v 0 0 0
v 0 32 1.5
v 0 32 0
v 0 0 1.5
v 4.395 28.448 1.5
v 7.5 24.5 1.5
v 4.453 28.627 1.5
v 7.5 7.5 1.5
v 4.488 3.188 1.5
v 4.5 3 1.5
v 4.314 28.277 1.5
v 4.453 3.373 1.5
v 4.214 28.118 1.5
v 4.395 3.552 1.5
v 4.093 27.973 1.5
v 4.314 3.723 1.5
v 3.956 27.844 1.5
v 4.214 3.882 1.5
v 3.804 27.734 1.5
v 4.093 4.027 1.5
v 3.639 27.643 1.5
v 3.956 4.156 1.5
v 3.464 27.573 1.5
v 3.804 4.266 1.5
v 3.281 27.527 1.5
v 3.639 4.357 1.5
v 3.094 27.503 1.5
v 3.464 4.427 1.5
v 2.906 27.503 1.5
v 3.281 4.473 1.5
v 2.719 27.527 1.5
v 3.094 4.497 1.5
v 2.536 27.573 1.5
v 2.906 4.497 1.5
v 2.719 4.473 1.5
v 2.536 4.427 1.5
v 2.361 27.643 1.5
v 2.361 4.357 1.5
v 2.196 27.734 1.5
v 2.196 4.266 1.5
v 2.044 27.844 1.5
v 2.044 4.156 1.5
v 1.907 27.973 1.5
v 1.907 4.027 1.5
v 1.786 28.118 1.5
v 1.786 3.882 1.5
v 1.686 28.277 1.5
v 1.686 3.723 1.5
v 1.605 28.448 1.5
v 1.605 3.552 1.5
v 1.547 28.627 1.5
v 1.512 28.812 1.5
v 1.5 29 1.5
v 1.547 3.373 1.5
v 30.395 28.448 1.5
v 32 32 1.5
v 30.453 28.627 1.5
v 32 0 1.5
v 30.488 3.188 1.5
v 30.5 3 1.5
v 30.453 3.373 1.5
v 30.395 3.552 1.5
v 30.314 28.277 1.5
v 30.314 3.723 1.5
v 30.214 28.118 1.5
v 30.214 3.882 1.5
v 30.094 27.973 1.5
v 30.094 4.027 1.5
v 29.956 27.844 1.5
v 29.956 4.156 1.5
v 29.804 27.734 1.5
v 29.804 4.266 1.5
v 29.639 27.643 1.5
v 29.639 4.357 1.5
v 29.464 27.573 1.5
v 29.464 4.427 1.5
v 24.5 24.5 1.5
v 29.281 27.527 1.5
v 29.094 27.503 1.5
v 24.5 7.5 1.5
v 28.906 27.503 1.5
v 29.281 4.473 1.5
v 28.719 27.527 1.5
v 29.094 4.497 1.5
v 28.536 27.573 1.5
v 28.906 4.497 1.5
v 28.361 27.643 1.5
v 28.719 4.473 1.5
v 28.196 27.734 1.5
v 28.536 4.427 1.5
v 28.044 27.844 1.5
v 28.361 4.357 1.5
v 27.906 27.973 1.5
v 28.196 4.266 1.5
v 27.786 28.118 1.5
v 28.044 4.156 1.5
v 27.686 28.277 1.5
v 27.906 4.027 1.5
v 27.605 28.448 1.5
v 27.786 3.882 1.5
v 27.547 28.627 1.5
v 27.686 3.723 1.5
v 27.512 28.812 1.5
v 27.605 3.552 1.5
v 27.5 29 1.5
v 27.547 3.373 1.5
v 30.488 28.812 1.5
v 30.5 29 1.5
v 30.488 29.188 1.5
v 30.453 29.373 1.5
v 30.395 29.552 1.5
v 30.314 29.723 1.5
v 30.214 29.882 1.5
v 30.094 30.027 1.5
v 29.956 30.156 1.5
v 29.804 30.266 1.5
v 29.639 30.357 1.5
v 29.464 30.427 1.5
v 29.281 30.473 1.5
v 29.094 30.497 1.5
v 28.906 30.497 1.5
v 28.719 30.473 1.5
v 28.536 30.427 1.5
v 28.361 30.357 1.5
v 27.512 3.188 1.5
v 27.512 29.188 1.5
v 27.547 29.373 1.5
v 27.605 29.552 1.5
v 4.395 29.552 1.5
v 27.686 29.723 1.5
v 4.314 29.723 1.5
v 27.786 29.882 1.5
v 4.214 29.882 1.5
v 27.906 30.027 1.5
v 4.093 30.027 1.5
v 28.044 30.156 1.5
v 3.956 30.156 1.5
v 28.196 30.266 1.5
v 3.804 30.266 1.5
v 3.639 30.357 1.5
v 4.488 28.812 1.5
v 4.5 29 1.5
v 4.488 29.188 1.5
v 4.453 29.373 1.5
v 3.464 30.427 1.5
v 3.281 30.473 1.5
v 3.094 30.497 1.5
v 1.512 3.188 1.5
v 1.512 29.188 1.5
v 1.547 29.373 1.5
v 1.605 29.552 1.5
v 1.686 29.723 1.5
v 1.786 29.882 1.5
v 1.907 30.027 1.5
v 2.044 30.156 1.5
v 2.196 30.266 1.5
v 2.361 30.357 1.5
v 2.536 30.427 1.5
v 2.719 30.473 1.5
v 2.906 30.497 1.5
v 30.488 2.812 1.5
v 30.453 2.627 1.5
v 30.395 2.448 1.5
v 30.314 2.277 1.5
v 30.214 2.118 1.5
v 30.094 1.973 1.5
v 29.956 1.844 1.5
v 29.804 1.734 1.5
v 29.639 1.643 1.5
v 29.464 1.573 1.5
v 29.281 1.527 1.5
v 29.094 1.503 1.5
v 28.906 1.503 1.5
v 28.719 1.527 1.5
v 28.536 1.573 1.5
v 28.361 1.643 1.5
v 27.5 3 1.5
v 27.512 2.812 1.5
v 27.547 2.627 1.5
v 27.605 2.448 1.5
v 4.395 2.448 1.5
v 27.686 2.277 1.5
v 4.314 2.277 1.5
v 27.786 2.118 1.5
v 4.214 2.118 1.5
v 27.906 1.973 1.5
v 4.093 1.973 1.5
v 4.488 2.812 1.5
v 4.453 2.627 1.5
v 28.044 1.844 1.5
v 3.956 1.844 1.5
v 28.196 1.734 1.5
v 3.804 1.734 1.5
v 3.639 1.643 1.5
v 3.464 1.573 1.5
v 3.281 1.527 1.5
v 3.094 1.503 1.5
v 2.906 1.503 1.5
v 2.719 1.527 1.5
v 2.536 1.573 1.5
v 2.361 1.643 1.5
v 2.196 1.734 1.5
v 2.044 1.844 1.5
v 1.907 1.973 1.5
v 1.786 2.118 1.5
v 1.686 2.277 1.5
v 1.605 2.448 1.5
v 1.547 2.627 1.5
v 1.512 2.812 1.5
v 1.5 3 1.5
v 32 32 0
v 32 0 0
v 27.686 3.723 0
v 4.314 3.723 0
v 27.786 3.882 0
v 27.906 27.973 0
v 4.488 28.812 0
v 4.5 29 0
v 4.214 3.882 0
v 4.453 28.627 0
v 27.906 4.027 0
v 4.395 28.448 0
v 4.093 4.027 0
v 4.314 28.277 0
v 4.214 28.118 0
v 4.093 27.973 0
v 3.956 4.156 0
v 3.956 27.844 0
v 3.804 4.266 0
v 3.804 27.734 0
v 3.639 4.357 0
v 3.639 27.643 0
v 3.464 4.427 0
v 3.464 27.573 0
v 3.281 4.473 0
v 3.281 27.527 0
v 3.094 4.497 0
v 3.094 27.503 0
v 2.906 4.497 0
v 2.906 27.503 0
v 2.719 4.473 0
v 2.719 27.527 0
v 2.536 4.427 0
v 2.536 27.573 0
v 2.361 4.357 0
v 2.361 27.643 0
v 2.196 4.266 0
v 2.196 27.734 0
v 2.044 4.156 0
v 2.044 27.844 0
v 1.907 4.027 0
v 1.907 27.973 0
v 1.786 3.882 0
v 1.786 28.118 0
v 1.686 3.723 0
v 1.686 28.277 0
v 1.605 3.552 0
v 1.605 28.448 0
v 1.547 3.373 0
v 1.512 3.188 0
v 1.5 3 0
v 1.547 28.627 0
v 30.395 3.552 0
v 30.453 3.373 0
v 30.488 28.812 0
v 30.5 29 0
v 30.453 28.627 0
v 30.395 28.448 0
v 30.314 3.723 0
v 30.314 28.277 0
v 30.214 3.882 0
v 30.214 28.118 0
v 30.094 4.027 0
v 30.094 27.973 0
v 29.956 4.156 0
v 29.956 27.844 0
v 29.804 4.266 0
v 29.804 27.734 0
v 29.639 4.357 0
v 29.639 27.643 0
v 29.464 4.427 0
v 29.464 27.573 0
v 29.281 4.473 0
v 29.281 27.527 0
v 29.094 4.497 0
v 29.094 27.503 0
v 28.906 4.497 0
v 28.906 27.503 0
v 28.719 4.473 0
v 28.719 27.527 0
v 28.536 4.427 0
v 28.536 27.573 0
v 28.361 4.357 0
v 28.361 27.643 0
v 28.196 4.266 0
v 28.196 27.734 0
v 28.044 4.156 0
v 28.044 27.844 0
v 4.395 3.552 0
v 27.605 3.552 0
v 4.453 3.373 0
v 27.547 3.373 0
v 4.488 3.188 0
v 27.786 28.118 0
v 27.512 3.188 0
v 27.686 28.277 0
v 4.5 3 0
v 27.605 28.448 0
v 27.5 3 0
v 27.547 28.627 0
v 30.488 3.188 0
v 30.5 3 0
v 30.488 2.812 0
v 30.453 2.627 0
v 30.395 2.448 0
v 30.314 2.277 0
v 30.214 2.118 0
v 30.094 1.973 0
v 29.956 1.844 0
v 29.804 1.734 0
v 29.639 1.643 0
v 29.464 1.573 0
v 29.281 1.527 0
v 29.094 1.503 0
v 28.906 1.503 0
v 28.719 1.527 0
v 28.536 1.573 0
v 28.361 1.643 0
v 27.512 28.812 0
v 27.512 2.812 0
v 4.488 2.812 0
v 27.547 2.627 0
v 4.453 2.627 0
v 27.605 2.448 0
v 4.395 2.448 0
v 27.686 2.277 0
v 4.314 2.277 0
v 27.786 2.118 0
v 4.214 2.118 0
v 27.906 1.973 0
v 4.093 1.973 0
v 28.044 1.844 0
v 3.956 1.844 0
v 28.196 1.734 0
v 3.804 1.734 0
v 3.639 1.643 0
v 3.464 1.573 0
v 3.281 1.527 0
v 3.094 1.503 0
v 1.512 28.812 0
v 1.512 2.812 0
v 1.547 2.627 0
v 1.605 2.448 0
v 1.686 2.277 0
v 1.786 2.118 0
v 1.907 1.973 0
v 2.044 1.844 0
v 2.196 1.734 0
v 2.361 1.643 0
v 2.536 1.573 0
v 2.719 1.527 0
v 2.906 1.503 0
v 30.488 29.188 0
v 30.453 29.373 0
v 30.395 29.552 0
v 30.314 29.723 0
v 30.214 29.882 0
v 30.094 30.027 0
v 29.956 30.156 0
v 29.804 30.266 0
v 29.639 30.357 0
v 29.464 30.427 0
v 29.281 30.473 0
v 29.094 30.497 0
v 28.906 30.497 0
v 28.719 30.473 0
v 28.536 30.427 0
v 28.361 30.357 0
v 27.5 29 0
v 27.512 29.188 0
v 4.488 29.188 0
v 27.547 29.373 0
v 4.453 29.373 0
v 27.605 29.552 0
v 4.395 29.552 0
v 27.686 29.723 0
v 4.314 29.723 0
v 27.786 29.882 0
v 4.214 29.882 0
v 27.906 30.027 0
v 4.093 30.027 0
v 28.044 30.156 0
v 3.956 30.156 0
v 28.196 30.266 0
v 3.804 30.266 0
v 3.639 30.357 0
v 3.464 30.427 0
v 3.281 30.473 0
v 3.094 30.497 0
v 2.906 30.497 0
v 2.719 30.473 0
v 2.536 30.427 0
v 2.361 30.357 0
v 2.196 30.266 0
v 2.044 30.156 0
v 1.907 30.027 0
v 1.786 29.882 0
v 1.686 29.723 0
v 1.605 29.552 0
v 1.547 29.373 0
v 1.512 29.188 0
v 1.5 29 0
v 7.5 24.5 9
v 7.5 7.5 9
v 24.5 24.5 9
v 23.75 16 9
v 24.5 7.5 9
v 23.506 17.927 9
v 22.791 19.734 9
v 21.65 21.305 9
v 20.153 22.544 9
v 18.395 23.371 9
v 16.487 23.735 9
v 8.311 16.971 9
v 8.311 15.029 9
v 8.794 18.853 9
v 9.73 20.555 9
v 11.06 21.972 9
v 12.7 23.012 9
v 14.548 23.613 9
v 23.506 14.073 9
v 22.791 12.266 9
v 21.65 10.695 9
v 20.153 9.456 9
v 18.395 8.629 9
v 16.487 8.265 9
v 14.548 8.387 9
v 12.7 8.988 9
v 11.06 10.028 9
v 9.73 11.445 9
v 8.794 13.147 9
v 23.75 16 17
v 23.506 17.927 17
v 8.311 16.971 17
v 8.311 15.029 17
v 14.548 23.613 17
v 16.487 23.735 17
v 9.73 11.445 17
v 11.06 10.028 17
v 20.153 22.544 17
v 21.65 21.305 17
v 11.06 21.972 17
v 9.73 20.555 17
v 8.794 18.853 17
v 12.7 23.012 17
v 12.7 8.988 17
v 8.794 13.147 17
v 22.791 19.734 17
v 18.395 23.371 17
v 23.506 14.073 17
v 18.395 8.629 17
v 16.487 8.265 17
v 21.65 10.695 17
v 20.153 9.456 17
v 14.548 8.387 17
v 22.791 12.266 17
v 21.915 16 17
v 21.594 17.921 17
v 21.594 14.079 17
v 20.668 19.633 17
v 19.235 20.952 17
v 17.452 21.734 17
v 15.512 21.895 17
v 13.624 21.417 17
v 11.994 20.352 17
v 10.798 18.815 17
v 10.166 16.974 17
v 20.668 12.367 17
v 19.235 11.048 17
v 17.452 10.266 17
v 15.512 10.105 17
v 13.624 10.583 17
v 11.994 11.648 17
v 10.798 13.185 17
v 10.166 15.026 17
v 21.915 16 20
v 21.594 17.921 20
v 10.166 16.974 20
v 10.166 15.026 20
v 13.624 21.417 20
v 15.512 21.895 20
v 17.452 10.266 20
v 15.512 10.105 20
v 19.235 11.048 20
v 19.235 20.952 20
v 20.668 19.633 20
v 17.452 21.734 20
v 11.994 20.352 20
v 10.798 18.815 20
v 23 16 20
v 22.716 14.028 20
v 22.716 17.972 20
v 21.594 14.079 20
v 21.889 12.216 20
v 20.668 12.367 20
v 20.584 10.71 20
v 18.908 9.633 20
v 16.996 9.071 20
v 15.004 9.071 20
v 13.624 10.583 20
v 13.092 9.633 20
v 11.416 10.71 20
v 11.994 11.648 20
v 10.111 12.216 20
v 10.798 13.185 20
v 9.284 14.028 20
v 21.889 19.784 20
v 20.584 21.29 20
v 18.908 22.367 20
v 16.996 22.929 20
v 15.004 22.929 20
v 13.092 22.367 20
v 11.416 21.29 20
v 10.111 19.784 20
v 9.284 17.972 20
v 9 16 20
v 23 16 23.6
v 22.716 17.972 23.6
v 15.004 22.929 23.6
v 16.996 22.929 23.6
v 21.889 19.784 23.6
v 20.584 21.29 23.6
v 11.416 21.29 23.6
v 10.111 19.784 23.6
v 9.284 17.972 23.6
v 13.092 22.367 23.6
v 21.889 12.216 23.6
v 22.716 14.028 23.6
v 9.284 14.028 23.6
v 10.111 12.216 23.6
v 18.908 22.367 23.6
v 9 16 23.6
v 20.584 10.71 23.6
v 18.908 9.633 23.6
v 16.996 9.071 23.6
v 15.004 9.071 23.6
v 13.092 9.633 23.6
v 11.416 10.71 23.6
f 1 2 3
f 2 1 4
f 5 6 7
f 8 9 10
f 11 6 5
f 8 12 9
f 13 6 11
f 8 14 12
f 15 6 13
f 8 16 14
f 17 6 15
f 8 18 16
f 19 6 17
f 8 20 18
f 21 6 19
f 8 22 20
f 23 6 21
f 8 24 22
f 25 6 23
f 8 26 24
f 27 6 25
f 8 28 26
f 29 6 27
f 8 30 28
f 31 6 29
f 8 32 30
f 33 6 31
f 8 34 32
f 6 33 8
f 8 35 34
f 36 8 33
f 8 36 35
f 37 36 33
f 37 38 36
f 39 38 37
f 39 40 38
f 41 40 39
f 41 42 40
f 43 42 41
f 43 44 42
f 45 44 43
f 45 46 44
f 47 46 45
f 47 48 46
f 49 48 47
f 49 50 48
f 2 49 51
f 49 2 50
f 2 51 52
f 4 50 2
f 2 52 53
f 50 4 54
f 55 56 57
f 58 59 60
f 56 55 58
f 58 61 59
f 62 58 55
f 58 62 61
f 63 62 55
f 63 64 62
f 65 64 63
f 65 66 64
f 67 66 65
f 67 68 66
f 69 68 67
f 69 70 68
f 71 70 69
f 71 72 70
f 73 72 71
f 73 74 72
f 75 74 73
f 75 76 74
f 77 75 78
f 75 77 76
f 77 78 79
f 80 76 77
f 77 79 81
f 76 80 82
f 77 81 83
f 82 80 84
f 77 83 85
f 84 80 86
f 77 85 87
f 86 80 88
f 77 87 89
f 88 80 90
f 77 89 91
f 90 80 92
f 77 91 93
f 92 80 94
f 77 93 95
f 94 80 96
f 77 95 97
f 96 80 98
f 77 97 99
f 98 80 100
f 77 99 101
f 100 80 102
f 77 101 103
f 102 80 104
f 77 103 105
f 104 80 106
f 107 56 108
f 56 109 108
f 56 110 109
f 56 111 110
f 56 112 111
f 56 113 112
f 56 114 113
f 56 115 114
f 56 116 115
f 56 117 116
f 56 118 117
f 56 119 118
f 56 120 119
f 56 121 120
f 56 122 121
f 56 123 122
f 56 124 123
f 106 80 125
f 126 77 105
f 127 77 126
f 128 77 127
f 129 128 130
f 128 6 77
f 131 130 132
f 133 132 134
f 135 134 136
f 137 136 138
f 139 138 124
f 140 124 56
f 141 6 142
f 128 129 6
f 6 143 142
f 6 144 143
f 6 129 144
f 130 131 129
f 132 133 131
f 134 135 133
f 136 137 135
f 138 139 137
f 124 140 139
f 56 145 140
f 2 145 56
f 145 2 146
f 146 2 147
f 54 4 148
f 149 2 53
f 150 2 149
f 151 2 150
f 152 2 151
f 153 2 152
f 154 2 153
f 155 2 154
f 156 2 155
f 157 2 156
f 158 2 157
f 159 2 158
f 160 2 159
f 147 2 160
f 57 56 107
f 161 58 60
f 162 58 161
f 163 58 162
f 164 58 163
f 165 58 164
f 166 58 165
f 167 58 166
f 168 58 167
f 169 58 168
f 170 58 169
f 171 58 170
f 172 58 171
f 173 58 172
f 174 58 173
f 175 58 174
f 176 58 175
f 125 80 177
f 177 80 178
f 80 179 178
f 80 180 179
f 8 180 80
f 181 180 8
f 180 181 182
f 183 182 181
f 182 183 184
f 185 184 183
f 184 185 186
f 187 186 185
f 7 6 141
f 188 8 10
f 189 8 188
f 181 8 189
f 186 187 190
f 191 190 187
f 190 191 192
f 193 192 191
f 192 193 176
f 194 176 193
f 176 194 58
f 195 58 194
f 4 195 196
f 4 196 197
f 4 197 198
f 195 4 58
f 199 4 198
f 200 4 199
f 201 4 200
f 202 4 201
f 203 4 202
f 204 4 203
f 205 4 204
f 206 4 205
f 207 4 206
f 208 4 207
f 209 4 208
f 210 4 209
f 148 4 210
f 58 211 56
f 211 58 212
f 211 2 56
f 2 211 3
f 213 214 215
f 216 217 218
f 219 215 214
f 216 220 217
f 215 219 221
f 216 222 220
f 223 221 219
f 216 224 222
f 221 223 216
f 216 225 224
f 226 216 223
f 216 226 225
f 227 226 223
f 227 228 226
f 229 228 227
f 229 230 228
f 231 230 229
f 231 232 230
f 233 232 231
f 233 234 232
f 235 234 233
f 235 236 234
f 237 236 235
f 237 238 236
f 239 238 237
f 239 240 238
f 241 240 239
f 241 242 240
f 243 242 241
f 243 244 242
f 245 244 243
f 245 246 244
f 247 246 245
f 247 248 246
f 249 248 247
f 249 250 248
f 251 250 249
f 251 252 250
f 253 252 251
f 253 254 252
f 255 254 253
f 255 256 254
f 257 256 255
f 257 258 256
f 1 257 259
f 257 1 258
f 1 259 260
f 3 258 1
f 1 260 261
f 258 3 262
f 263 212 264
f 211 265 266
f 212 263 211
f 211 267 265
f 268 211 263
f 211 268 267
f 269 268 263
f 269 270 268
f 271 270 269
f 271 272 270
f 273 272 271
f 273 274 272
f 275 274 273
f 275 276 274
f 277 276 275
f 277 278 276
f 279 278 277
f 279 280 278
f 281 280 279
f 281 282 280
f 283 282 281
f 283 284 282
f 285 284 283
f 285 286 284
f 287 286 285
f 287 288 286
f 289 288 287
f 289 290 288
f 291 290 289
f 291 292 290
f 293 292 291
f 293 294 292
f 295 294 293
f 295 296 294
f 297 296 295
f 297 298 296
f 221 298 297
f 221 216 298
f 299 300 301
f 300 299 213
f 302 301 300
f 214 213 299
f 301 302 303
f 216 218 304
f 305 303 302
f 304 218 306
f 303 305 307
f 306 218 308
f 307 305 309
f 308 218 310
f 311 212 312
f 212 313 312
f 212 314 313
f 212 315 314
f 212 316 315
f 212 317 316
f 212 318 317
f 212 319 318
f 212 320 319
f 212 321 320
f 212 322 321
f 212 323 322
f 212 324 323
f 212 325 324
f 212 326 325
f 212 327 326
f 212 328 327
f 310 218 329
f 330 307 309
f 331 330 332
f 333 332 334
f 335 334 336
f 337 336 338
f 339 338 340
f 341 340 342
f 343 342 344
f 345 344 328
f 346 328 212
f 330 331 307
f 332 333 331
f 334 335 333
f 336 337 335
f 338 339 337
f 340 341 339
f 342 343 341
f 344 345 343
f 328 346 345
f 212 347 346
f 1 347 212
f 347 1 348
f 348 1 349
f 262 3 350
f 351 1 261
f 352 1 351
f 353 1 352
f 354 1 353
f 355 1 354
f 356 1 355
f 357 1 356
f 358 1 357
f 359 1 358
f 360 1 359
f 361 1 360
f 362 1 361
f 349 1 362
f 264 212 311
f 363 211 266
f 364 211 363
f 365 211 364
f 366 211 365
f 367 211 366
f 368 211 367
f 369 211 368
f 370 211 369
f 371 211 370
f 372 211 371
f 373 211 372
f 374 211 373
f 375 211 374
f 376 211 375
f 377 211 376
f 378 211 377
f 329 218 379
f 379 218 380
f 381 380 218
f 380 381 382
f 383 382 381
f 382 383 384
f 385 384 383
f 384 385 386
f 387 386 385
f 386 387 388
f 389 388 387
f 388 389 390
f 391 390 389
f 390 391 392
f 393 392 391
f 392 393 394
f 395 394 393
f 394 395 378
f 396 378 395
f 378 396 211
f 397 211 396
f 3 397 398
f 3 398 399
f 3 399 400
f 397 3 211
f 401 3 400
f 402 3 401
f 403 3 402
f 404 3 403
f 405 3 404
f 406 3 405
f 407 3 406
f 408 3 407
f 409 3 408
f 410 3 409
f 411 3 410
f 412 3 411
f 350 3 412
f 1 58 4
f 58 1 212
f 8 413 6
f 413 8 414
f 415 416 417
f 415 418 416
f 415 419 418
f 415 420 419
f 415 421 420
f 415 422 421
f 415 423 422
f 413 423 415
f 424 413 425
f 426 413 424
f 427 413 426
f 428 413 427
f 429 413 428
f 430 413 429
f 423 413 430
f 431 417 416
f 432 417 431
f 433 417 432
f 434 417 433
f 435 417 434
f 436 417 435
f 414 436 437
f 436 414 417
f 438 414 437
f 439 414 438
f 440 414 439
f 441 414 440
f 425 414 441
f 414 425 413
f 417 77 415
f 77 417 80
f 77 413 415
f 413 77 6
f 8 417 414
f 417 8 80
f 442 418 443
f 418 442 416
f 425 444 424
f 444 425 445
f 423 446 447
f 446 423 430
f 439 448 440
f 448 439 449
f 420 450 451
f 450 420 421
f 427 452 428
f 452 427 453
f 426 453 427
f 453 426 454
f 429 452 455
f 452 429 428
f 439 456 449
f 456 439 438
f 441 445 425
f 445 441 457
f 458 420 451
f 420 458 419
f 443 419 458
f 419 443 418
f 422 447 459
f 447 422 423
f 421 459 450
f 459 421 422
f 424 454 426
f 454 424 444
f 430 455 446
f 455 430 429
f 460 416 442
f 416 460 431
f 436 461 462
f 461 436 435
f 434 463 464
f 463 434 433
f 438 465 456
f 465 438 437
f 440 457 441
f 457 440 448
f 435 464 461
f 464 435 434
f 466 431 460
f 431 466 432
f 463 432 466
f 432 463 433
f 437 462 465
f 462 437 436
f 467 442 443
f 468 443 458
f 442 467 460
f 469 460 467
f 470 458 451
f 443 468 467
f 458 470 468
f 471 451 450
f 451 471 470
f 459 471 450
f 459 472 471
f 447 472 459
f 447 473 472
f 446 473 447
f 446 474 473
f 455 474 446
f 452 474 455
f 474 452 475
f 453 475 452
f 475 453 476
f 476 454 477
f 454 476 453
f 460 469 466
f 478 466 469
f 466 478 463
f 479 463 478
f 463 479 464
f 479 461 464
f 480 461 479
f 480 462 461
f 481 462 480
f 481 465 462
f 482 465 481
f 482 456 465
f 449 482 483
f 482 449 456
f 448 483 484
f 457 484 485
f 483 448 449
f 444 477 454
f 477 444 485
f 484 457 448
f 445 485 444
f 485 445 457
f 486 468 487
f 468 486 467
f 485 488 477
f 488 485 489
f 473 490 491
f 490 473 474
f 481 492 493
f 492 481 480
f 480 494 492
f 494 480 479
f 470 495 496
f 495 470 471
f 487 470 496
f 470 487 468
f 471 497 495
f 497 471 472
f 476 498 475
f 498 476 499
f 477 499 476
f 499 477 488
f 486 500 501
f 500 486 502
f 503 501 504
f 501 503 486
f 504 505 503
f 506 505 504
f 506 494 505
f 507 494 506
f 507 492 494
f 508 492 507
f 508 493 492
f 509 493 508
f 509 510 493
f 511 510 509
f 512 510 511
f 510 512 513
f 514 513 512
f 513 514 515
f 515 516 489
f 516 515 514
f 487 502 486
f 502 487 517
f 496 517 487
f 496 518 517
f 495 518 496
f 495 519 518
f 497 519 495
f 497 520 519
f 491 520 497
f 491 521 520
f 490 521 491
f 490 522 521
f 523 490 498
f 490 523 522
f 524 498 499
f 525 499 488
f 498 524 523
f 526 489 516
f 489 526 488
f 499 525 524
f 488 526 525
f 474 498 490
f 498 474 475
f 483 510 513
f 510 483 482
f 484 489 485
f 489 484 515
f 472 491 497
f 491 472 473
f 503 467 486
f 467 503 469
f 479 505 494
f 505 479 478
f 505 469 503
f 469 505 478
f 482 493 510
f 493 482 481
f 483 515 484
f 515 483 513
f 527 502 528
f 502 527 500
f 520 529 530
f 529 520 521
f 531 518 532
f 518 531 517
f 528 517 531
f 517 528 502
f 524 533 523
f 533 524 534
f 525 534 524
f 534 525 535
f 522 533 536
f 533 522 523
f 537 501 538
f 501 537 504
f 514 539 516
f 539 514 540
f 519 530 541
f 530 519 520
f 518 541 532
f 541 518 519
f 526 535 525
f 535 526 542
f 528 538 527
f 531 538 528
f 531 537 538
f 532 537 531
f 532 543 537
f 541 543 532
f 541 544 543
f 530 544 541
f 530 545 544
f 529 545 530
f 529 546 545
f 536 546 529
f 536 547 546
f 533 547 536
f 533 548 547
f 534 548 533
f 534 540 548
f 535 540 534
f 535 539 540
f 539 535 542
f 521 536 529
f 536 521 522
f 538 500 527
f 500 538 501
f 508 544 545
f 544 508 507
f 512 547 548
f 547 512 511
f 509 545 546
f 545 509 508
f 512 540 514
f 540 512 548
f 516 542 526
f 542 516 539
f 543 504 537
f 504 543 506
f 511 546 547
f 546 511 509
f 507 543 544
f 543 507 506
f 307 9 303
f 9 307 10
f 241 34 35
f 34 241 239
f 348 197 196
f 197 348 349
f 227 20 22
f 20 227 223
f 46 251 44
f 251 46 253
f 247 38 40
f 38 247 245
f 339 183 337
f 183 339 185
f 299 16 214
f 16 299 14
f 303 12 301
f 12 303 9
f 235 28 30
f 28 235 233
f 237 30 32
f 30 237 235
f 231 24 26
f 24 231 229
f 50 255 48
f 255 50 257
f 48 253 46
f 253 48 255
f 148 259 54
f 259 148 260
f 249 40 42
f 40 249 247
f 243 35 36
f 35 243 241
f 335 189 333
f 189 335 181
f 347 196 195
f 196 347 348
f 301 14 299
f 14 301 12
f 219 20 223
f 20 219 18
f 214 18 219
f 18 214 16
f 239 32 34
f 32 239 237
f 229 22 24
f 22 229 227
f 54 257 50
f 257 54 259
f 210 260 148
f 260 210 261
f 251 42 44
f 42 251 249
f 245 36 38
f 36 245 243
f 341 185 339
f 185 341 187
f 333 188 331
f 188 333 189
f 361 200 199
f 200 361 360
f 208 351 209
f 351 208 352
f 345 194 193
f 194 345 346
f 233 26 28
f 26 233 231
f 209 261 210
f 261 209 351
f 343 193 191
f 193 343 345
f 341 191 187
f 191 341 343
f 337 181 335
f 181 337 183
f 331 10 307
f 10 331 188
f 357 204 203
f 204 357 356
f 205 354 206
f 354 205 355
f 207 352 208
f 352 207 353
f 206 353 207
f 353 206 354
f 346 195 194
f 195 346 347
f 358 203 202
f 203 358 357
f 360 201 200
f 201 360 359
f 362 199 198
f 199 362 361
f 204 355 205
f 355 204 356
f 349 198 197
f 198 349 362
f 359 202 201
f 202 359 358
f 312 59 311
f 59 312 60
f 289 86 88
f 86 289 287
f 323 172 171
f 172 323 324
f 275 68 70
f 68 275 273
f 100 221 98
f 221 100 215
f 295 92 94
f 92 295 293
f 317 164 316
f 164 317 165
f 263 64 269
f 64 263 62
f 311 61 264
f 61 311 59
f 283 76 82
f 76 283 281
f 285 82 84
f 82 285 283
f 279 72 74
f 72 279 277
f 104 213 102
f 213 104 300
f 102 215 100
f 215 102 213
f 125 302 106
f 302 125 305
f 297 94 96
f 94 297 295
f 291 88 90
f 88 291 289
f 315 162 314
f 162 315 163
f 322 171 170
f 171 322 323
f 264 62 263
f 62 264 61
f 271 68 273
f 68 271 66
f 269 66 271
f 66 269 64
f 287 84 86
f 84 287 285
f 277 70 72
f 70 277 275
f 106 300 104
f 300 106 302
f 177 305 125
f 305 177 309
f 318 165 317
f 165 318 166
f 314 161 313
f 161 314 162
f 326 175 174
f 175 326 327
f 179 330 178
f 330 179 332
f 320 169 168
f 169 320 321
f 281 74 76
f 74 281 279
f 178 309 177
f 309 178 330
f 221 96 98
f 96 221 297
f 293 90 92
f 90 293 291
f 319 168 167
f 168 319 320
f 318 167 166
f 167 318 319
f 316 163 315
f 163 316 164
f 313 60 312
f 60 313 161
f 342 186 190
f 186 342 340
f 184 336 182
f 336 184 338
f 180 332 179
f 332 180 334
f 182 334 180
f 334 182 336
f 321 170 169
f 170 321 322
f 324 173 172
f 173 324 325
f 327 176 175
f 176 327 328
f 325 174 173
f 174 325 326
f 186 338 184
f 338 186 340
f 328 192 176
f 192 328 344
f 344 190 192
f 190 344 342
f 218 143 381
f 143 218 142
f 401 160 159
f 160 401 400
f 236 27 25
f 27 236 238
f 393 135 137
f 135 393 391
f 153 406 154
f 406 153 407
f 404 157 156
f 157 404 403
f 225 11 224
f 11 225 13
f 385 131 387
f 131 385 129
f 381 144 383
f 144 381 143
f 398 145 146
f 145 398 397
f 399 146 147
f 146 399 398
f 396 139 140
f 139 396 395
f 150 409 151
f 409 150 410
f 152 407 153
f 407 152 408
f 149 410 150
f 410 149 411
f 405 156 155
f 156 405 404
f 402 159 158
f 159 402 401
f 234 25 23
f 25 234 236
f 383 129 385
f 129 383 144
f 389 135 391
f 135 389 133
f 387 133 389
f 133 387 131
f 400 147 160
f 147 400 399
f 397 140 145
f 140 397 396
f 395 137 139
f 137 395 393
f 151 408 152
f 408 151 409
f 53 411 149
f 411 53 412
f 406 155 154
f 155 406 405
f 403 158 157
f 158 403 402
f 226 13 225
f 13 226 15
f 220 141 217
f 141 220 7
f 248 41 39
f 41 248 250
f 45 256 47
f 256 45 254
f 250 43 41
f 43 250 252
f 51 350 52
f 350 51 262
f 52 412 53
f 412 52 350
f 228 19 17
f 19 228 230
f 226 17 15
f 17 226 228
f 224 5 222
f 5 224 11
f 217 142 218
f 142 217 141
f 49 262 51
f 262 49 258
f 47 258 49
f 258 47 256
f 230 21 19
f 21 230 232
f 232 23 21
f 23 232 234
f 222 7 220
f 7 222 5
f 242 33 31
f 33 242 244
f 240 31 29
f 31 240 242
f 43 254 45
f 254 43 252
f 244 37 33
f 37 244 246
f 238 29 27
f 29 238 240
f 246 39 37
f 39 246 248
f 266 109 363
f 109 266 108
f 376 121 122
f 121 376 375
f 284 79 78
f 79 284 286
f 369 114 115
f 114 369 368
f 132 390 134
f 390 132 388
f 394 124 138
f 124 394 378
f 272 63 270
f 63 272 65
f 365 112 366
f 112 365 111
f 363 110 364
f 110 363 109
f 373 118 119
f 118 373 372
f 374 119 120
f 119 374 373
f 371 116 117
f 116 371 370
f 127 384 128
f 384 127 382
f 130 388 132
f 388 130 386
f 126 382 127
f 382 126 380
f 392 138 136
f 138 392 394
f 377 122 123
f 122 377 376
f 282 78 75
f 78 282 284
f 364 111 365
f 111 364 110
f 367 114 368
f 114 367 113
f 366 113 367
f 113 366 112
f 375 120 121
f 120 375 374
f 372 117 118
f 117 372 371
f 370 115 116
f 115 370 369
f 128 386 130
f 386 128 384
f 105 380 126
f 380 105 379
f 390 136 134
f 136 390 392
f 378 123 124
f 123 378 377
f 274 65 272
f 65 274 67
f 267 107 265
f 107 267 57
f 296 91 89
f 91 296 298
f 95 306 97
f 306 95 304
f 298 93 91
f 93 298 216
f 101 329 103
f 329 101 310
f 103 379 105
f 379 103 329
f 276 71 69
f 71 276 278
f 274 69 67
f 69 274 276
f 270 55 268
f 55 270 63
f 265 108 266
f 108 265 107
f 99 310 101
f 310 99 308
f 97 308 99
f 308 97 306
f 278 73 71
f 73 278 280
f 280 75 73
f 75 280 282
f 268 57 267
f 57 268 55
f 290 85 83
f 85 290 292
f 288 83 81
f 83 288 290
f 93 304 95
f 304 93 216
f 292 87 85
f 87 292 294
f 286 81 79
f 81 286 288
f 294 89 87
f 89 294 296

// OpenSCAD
board_w = 32;
board_d = 32;
board_h = 1.5;

cam_w = 17;
cam_d = 17;
cam_h = 7.5;

difference () {
    union () {
        // board
        cube ([board_w,board_d,board_h]);
        //cam_body
        translate([(board_w-cam_w)/2,(board_d-cam_d)/2,board_h]) cube([cam_w,cam_d,cam_h]);
        translate([board_w/2,board_d/2,board_h+cam_h+(5.5/2)]) cylinder (h=5.5, d=15.5,center=true);
        // lock ring
        translate([board_w/2,board_d/2,board_h+cam_h+5.5+(2.5/2)]) cylinder (h=2.5, d=15.5,center=true);
        // lens_shaft
        translate([board_w/2,board_d/2,board_h+cam_h+5.5+2.5+(3/2)]) cylinder (h=3, d=11.83,center=true);
        // lens body
        translate([board_w/2,board_d/2,board_h+cam_h+5.5+2.5+3+(3.6/2)]) cylinder (h=3.6, d=14,center=true);
    }
    translate([3,3,2]) cylinder(d=3,h=5, center=true, $fn=50);
    translate([board_w-3,3,2]) cylinder(d=3,h=5, center=true, $fn=50);
    translate([3,board_d-3,2]) cylinder(d=3,h=5, center=true, $fn=50);
    translate([board_w-3,board_d-3,2]) cylinder(d=3,h=5, center=true, $fn=50);
}
